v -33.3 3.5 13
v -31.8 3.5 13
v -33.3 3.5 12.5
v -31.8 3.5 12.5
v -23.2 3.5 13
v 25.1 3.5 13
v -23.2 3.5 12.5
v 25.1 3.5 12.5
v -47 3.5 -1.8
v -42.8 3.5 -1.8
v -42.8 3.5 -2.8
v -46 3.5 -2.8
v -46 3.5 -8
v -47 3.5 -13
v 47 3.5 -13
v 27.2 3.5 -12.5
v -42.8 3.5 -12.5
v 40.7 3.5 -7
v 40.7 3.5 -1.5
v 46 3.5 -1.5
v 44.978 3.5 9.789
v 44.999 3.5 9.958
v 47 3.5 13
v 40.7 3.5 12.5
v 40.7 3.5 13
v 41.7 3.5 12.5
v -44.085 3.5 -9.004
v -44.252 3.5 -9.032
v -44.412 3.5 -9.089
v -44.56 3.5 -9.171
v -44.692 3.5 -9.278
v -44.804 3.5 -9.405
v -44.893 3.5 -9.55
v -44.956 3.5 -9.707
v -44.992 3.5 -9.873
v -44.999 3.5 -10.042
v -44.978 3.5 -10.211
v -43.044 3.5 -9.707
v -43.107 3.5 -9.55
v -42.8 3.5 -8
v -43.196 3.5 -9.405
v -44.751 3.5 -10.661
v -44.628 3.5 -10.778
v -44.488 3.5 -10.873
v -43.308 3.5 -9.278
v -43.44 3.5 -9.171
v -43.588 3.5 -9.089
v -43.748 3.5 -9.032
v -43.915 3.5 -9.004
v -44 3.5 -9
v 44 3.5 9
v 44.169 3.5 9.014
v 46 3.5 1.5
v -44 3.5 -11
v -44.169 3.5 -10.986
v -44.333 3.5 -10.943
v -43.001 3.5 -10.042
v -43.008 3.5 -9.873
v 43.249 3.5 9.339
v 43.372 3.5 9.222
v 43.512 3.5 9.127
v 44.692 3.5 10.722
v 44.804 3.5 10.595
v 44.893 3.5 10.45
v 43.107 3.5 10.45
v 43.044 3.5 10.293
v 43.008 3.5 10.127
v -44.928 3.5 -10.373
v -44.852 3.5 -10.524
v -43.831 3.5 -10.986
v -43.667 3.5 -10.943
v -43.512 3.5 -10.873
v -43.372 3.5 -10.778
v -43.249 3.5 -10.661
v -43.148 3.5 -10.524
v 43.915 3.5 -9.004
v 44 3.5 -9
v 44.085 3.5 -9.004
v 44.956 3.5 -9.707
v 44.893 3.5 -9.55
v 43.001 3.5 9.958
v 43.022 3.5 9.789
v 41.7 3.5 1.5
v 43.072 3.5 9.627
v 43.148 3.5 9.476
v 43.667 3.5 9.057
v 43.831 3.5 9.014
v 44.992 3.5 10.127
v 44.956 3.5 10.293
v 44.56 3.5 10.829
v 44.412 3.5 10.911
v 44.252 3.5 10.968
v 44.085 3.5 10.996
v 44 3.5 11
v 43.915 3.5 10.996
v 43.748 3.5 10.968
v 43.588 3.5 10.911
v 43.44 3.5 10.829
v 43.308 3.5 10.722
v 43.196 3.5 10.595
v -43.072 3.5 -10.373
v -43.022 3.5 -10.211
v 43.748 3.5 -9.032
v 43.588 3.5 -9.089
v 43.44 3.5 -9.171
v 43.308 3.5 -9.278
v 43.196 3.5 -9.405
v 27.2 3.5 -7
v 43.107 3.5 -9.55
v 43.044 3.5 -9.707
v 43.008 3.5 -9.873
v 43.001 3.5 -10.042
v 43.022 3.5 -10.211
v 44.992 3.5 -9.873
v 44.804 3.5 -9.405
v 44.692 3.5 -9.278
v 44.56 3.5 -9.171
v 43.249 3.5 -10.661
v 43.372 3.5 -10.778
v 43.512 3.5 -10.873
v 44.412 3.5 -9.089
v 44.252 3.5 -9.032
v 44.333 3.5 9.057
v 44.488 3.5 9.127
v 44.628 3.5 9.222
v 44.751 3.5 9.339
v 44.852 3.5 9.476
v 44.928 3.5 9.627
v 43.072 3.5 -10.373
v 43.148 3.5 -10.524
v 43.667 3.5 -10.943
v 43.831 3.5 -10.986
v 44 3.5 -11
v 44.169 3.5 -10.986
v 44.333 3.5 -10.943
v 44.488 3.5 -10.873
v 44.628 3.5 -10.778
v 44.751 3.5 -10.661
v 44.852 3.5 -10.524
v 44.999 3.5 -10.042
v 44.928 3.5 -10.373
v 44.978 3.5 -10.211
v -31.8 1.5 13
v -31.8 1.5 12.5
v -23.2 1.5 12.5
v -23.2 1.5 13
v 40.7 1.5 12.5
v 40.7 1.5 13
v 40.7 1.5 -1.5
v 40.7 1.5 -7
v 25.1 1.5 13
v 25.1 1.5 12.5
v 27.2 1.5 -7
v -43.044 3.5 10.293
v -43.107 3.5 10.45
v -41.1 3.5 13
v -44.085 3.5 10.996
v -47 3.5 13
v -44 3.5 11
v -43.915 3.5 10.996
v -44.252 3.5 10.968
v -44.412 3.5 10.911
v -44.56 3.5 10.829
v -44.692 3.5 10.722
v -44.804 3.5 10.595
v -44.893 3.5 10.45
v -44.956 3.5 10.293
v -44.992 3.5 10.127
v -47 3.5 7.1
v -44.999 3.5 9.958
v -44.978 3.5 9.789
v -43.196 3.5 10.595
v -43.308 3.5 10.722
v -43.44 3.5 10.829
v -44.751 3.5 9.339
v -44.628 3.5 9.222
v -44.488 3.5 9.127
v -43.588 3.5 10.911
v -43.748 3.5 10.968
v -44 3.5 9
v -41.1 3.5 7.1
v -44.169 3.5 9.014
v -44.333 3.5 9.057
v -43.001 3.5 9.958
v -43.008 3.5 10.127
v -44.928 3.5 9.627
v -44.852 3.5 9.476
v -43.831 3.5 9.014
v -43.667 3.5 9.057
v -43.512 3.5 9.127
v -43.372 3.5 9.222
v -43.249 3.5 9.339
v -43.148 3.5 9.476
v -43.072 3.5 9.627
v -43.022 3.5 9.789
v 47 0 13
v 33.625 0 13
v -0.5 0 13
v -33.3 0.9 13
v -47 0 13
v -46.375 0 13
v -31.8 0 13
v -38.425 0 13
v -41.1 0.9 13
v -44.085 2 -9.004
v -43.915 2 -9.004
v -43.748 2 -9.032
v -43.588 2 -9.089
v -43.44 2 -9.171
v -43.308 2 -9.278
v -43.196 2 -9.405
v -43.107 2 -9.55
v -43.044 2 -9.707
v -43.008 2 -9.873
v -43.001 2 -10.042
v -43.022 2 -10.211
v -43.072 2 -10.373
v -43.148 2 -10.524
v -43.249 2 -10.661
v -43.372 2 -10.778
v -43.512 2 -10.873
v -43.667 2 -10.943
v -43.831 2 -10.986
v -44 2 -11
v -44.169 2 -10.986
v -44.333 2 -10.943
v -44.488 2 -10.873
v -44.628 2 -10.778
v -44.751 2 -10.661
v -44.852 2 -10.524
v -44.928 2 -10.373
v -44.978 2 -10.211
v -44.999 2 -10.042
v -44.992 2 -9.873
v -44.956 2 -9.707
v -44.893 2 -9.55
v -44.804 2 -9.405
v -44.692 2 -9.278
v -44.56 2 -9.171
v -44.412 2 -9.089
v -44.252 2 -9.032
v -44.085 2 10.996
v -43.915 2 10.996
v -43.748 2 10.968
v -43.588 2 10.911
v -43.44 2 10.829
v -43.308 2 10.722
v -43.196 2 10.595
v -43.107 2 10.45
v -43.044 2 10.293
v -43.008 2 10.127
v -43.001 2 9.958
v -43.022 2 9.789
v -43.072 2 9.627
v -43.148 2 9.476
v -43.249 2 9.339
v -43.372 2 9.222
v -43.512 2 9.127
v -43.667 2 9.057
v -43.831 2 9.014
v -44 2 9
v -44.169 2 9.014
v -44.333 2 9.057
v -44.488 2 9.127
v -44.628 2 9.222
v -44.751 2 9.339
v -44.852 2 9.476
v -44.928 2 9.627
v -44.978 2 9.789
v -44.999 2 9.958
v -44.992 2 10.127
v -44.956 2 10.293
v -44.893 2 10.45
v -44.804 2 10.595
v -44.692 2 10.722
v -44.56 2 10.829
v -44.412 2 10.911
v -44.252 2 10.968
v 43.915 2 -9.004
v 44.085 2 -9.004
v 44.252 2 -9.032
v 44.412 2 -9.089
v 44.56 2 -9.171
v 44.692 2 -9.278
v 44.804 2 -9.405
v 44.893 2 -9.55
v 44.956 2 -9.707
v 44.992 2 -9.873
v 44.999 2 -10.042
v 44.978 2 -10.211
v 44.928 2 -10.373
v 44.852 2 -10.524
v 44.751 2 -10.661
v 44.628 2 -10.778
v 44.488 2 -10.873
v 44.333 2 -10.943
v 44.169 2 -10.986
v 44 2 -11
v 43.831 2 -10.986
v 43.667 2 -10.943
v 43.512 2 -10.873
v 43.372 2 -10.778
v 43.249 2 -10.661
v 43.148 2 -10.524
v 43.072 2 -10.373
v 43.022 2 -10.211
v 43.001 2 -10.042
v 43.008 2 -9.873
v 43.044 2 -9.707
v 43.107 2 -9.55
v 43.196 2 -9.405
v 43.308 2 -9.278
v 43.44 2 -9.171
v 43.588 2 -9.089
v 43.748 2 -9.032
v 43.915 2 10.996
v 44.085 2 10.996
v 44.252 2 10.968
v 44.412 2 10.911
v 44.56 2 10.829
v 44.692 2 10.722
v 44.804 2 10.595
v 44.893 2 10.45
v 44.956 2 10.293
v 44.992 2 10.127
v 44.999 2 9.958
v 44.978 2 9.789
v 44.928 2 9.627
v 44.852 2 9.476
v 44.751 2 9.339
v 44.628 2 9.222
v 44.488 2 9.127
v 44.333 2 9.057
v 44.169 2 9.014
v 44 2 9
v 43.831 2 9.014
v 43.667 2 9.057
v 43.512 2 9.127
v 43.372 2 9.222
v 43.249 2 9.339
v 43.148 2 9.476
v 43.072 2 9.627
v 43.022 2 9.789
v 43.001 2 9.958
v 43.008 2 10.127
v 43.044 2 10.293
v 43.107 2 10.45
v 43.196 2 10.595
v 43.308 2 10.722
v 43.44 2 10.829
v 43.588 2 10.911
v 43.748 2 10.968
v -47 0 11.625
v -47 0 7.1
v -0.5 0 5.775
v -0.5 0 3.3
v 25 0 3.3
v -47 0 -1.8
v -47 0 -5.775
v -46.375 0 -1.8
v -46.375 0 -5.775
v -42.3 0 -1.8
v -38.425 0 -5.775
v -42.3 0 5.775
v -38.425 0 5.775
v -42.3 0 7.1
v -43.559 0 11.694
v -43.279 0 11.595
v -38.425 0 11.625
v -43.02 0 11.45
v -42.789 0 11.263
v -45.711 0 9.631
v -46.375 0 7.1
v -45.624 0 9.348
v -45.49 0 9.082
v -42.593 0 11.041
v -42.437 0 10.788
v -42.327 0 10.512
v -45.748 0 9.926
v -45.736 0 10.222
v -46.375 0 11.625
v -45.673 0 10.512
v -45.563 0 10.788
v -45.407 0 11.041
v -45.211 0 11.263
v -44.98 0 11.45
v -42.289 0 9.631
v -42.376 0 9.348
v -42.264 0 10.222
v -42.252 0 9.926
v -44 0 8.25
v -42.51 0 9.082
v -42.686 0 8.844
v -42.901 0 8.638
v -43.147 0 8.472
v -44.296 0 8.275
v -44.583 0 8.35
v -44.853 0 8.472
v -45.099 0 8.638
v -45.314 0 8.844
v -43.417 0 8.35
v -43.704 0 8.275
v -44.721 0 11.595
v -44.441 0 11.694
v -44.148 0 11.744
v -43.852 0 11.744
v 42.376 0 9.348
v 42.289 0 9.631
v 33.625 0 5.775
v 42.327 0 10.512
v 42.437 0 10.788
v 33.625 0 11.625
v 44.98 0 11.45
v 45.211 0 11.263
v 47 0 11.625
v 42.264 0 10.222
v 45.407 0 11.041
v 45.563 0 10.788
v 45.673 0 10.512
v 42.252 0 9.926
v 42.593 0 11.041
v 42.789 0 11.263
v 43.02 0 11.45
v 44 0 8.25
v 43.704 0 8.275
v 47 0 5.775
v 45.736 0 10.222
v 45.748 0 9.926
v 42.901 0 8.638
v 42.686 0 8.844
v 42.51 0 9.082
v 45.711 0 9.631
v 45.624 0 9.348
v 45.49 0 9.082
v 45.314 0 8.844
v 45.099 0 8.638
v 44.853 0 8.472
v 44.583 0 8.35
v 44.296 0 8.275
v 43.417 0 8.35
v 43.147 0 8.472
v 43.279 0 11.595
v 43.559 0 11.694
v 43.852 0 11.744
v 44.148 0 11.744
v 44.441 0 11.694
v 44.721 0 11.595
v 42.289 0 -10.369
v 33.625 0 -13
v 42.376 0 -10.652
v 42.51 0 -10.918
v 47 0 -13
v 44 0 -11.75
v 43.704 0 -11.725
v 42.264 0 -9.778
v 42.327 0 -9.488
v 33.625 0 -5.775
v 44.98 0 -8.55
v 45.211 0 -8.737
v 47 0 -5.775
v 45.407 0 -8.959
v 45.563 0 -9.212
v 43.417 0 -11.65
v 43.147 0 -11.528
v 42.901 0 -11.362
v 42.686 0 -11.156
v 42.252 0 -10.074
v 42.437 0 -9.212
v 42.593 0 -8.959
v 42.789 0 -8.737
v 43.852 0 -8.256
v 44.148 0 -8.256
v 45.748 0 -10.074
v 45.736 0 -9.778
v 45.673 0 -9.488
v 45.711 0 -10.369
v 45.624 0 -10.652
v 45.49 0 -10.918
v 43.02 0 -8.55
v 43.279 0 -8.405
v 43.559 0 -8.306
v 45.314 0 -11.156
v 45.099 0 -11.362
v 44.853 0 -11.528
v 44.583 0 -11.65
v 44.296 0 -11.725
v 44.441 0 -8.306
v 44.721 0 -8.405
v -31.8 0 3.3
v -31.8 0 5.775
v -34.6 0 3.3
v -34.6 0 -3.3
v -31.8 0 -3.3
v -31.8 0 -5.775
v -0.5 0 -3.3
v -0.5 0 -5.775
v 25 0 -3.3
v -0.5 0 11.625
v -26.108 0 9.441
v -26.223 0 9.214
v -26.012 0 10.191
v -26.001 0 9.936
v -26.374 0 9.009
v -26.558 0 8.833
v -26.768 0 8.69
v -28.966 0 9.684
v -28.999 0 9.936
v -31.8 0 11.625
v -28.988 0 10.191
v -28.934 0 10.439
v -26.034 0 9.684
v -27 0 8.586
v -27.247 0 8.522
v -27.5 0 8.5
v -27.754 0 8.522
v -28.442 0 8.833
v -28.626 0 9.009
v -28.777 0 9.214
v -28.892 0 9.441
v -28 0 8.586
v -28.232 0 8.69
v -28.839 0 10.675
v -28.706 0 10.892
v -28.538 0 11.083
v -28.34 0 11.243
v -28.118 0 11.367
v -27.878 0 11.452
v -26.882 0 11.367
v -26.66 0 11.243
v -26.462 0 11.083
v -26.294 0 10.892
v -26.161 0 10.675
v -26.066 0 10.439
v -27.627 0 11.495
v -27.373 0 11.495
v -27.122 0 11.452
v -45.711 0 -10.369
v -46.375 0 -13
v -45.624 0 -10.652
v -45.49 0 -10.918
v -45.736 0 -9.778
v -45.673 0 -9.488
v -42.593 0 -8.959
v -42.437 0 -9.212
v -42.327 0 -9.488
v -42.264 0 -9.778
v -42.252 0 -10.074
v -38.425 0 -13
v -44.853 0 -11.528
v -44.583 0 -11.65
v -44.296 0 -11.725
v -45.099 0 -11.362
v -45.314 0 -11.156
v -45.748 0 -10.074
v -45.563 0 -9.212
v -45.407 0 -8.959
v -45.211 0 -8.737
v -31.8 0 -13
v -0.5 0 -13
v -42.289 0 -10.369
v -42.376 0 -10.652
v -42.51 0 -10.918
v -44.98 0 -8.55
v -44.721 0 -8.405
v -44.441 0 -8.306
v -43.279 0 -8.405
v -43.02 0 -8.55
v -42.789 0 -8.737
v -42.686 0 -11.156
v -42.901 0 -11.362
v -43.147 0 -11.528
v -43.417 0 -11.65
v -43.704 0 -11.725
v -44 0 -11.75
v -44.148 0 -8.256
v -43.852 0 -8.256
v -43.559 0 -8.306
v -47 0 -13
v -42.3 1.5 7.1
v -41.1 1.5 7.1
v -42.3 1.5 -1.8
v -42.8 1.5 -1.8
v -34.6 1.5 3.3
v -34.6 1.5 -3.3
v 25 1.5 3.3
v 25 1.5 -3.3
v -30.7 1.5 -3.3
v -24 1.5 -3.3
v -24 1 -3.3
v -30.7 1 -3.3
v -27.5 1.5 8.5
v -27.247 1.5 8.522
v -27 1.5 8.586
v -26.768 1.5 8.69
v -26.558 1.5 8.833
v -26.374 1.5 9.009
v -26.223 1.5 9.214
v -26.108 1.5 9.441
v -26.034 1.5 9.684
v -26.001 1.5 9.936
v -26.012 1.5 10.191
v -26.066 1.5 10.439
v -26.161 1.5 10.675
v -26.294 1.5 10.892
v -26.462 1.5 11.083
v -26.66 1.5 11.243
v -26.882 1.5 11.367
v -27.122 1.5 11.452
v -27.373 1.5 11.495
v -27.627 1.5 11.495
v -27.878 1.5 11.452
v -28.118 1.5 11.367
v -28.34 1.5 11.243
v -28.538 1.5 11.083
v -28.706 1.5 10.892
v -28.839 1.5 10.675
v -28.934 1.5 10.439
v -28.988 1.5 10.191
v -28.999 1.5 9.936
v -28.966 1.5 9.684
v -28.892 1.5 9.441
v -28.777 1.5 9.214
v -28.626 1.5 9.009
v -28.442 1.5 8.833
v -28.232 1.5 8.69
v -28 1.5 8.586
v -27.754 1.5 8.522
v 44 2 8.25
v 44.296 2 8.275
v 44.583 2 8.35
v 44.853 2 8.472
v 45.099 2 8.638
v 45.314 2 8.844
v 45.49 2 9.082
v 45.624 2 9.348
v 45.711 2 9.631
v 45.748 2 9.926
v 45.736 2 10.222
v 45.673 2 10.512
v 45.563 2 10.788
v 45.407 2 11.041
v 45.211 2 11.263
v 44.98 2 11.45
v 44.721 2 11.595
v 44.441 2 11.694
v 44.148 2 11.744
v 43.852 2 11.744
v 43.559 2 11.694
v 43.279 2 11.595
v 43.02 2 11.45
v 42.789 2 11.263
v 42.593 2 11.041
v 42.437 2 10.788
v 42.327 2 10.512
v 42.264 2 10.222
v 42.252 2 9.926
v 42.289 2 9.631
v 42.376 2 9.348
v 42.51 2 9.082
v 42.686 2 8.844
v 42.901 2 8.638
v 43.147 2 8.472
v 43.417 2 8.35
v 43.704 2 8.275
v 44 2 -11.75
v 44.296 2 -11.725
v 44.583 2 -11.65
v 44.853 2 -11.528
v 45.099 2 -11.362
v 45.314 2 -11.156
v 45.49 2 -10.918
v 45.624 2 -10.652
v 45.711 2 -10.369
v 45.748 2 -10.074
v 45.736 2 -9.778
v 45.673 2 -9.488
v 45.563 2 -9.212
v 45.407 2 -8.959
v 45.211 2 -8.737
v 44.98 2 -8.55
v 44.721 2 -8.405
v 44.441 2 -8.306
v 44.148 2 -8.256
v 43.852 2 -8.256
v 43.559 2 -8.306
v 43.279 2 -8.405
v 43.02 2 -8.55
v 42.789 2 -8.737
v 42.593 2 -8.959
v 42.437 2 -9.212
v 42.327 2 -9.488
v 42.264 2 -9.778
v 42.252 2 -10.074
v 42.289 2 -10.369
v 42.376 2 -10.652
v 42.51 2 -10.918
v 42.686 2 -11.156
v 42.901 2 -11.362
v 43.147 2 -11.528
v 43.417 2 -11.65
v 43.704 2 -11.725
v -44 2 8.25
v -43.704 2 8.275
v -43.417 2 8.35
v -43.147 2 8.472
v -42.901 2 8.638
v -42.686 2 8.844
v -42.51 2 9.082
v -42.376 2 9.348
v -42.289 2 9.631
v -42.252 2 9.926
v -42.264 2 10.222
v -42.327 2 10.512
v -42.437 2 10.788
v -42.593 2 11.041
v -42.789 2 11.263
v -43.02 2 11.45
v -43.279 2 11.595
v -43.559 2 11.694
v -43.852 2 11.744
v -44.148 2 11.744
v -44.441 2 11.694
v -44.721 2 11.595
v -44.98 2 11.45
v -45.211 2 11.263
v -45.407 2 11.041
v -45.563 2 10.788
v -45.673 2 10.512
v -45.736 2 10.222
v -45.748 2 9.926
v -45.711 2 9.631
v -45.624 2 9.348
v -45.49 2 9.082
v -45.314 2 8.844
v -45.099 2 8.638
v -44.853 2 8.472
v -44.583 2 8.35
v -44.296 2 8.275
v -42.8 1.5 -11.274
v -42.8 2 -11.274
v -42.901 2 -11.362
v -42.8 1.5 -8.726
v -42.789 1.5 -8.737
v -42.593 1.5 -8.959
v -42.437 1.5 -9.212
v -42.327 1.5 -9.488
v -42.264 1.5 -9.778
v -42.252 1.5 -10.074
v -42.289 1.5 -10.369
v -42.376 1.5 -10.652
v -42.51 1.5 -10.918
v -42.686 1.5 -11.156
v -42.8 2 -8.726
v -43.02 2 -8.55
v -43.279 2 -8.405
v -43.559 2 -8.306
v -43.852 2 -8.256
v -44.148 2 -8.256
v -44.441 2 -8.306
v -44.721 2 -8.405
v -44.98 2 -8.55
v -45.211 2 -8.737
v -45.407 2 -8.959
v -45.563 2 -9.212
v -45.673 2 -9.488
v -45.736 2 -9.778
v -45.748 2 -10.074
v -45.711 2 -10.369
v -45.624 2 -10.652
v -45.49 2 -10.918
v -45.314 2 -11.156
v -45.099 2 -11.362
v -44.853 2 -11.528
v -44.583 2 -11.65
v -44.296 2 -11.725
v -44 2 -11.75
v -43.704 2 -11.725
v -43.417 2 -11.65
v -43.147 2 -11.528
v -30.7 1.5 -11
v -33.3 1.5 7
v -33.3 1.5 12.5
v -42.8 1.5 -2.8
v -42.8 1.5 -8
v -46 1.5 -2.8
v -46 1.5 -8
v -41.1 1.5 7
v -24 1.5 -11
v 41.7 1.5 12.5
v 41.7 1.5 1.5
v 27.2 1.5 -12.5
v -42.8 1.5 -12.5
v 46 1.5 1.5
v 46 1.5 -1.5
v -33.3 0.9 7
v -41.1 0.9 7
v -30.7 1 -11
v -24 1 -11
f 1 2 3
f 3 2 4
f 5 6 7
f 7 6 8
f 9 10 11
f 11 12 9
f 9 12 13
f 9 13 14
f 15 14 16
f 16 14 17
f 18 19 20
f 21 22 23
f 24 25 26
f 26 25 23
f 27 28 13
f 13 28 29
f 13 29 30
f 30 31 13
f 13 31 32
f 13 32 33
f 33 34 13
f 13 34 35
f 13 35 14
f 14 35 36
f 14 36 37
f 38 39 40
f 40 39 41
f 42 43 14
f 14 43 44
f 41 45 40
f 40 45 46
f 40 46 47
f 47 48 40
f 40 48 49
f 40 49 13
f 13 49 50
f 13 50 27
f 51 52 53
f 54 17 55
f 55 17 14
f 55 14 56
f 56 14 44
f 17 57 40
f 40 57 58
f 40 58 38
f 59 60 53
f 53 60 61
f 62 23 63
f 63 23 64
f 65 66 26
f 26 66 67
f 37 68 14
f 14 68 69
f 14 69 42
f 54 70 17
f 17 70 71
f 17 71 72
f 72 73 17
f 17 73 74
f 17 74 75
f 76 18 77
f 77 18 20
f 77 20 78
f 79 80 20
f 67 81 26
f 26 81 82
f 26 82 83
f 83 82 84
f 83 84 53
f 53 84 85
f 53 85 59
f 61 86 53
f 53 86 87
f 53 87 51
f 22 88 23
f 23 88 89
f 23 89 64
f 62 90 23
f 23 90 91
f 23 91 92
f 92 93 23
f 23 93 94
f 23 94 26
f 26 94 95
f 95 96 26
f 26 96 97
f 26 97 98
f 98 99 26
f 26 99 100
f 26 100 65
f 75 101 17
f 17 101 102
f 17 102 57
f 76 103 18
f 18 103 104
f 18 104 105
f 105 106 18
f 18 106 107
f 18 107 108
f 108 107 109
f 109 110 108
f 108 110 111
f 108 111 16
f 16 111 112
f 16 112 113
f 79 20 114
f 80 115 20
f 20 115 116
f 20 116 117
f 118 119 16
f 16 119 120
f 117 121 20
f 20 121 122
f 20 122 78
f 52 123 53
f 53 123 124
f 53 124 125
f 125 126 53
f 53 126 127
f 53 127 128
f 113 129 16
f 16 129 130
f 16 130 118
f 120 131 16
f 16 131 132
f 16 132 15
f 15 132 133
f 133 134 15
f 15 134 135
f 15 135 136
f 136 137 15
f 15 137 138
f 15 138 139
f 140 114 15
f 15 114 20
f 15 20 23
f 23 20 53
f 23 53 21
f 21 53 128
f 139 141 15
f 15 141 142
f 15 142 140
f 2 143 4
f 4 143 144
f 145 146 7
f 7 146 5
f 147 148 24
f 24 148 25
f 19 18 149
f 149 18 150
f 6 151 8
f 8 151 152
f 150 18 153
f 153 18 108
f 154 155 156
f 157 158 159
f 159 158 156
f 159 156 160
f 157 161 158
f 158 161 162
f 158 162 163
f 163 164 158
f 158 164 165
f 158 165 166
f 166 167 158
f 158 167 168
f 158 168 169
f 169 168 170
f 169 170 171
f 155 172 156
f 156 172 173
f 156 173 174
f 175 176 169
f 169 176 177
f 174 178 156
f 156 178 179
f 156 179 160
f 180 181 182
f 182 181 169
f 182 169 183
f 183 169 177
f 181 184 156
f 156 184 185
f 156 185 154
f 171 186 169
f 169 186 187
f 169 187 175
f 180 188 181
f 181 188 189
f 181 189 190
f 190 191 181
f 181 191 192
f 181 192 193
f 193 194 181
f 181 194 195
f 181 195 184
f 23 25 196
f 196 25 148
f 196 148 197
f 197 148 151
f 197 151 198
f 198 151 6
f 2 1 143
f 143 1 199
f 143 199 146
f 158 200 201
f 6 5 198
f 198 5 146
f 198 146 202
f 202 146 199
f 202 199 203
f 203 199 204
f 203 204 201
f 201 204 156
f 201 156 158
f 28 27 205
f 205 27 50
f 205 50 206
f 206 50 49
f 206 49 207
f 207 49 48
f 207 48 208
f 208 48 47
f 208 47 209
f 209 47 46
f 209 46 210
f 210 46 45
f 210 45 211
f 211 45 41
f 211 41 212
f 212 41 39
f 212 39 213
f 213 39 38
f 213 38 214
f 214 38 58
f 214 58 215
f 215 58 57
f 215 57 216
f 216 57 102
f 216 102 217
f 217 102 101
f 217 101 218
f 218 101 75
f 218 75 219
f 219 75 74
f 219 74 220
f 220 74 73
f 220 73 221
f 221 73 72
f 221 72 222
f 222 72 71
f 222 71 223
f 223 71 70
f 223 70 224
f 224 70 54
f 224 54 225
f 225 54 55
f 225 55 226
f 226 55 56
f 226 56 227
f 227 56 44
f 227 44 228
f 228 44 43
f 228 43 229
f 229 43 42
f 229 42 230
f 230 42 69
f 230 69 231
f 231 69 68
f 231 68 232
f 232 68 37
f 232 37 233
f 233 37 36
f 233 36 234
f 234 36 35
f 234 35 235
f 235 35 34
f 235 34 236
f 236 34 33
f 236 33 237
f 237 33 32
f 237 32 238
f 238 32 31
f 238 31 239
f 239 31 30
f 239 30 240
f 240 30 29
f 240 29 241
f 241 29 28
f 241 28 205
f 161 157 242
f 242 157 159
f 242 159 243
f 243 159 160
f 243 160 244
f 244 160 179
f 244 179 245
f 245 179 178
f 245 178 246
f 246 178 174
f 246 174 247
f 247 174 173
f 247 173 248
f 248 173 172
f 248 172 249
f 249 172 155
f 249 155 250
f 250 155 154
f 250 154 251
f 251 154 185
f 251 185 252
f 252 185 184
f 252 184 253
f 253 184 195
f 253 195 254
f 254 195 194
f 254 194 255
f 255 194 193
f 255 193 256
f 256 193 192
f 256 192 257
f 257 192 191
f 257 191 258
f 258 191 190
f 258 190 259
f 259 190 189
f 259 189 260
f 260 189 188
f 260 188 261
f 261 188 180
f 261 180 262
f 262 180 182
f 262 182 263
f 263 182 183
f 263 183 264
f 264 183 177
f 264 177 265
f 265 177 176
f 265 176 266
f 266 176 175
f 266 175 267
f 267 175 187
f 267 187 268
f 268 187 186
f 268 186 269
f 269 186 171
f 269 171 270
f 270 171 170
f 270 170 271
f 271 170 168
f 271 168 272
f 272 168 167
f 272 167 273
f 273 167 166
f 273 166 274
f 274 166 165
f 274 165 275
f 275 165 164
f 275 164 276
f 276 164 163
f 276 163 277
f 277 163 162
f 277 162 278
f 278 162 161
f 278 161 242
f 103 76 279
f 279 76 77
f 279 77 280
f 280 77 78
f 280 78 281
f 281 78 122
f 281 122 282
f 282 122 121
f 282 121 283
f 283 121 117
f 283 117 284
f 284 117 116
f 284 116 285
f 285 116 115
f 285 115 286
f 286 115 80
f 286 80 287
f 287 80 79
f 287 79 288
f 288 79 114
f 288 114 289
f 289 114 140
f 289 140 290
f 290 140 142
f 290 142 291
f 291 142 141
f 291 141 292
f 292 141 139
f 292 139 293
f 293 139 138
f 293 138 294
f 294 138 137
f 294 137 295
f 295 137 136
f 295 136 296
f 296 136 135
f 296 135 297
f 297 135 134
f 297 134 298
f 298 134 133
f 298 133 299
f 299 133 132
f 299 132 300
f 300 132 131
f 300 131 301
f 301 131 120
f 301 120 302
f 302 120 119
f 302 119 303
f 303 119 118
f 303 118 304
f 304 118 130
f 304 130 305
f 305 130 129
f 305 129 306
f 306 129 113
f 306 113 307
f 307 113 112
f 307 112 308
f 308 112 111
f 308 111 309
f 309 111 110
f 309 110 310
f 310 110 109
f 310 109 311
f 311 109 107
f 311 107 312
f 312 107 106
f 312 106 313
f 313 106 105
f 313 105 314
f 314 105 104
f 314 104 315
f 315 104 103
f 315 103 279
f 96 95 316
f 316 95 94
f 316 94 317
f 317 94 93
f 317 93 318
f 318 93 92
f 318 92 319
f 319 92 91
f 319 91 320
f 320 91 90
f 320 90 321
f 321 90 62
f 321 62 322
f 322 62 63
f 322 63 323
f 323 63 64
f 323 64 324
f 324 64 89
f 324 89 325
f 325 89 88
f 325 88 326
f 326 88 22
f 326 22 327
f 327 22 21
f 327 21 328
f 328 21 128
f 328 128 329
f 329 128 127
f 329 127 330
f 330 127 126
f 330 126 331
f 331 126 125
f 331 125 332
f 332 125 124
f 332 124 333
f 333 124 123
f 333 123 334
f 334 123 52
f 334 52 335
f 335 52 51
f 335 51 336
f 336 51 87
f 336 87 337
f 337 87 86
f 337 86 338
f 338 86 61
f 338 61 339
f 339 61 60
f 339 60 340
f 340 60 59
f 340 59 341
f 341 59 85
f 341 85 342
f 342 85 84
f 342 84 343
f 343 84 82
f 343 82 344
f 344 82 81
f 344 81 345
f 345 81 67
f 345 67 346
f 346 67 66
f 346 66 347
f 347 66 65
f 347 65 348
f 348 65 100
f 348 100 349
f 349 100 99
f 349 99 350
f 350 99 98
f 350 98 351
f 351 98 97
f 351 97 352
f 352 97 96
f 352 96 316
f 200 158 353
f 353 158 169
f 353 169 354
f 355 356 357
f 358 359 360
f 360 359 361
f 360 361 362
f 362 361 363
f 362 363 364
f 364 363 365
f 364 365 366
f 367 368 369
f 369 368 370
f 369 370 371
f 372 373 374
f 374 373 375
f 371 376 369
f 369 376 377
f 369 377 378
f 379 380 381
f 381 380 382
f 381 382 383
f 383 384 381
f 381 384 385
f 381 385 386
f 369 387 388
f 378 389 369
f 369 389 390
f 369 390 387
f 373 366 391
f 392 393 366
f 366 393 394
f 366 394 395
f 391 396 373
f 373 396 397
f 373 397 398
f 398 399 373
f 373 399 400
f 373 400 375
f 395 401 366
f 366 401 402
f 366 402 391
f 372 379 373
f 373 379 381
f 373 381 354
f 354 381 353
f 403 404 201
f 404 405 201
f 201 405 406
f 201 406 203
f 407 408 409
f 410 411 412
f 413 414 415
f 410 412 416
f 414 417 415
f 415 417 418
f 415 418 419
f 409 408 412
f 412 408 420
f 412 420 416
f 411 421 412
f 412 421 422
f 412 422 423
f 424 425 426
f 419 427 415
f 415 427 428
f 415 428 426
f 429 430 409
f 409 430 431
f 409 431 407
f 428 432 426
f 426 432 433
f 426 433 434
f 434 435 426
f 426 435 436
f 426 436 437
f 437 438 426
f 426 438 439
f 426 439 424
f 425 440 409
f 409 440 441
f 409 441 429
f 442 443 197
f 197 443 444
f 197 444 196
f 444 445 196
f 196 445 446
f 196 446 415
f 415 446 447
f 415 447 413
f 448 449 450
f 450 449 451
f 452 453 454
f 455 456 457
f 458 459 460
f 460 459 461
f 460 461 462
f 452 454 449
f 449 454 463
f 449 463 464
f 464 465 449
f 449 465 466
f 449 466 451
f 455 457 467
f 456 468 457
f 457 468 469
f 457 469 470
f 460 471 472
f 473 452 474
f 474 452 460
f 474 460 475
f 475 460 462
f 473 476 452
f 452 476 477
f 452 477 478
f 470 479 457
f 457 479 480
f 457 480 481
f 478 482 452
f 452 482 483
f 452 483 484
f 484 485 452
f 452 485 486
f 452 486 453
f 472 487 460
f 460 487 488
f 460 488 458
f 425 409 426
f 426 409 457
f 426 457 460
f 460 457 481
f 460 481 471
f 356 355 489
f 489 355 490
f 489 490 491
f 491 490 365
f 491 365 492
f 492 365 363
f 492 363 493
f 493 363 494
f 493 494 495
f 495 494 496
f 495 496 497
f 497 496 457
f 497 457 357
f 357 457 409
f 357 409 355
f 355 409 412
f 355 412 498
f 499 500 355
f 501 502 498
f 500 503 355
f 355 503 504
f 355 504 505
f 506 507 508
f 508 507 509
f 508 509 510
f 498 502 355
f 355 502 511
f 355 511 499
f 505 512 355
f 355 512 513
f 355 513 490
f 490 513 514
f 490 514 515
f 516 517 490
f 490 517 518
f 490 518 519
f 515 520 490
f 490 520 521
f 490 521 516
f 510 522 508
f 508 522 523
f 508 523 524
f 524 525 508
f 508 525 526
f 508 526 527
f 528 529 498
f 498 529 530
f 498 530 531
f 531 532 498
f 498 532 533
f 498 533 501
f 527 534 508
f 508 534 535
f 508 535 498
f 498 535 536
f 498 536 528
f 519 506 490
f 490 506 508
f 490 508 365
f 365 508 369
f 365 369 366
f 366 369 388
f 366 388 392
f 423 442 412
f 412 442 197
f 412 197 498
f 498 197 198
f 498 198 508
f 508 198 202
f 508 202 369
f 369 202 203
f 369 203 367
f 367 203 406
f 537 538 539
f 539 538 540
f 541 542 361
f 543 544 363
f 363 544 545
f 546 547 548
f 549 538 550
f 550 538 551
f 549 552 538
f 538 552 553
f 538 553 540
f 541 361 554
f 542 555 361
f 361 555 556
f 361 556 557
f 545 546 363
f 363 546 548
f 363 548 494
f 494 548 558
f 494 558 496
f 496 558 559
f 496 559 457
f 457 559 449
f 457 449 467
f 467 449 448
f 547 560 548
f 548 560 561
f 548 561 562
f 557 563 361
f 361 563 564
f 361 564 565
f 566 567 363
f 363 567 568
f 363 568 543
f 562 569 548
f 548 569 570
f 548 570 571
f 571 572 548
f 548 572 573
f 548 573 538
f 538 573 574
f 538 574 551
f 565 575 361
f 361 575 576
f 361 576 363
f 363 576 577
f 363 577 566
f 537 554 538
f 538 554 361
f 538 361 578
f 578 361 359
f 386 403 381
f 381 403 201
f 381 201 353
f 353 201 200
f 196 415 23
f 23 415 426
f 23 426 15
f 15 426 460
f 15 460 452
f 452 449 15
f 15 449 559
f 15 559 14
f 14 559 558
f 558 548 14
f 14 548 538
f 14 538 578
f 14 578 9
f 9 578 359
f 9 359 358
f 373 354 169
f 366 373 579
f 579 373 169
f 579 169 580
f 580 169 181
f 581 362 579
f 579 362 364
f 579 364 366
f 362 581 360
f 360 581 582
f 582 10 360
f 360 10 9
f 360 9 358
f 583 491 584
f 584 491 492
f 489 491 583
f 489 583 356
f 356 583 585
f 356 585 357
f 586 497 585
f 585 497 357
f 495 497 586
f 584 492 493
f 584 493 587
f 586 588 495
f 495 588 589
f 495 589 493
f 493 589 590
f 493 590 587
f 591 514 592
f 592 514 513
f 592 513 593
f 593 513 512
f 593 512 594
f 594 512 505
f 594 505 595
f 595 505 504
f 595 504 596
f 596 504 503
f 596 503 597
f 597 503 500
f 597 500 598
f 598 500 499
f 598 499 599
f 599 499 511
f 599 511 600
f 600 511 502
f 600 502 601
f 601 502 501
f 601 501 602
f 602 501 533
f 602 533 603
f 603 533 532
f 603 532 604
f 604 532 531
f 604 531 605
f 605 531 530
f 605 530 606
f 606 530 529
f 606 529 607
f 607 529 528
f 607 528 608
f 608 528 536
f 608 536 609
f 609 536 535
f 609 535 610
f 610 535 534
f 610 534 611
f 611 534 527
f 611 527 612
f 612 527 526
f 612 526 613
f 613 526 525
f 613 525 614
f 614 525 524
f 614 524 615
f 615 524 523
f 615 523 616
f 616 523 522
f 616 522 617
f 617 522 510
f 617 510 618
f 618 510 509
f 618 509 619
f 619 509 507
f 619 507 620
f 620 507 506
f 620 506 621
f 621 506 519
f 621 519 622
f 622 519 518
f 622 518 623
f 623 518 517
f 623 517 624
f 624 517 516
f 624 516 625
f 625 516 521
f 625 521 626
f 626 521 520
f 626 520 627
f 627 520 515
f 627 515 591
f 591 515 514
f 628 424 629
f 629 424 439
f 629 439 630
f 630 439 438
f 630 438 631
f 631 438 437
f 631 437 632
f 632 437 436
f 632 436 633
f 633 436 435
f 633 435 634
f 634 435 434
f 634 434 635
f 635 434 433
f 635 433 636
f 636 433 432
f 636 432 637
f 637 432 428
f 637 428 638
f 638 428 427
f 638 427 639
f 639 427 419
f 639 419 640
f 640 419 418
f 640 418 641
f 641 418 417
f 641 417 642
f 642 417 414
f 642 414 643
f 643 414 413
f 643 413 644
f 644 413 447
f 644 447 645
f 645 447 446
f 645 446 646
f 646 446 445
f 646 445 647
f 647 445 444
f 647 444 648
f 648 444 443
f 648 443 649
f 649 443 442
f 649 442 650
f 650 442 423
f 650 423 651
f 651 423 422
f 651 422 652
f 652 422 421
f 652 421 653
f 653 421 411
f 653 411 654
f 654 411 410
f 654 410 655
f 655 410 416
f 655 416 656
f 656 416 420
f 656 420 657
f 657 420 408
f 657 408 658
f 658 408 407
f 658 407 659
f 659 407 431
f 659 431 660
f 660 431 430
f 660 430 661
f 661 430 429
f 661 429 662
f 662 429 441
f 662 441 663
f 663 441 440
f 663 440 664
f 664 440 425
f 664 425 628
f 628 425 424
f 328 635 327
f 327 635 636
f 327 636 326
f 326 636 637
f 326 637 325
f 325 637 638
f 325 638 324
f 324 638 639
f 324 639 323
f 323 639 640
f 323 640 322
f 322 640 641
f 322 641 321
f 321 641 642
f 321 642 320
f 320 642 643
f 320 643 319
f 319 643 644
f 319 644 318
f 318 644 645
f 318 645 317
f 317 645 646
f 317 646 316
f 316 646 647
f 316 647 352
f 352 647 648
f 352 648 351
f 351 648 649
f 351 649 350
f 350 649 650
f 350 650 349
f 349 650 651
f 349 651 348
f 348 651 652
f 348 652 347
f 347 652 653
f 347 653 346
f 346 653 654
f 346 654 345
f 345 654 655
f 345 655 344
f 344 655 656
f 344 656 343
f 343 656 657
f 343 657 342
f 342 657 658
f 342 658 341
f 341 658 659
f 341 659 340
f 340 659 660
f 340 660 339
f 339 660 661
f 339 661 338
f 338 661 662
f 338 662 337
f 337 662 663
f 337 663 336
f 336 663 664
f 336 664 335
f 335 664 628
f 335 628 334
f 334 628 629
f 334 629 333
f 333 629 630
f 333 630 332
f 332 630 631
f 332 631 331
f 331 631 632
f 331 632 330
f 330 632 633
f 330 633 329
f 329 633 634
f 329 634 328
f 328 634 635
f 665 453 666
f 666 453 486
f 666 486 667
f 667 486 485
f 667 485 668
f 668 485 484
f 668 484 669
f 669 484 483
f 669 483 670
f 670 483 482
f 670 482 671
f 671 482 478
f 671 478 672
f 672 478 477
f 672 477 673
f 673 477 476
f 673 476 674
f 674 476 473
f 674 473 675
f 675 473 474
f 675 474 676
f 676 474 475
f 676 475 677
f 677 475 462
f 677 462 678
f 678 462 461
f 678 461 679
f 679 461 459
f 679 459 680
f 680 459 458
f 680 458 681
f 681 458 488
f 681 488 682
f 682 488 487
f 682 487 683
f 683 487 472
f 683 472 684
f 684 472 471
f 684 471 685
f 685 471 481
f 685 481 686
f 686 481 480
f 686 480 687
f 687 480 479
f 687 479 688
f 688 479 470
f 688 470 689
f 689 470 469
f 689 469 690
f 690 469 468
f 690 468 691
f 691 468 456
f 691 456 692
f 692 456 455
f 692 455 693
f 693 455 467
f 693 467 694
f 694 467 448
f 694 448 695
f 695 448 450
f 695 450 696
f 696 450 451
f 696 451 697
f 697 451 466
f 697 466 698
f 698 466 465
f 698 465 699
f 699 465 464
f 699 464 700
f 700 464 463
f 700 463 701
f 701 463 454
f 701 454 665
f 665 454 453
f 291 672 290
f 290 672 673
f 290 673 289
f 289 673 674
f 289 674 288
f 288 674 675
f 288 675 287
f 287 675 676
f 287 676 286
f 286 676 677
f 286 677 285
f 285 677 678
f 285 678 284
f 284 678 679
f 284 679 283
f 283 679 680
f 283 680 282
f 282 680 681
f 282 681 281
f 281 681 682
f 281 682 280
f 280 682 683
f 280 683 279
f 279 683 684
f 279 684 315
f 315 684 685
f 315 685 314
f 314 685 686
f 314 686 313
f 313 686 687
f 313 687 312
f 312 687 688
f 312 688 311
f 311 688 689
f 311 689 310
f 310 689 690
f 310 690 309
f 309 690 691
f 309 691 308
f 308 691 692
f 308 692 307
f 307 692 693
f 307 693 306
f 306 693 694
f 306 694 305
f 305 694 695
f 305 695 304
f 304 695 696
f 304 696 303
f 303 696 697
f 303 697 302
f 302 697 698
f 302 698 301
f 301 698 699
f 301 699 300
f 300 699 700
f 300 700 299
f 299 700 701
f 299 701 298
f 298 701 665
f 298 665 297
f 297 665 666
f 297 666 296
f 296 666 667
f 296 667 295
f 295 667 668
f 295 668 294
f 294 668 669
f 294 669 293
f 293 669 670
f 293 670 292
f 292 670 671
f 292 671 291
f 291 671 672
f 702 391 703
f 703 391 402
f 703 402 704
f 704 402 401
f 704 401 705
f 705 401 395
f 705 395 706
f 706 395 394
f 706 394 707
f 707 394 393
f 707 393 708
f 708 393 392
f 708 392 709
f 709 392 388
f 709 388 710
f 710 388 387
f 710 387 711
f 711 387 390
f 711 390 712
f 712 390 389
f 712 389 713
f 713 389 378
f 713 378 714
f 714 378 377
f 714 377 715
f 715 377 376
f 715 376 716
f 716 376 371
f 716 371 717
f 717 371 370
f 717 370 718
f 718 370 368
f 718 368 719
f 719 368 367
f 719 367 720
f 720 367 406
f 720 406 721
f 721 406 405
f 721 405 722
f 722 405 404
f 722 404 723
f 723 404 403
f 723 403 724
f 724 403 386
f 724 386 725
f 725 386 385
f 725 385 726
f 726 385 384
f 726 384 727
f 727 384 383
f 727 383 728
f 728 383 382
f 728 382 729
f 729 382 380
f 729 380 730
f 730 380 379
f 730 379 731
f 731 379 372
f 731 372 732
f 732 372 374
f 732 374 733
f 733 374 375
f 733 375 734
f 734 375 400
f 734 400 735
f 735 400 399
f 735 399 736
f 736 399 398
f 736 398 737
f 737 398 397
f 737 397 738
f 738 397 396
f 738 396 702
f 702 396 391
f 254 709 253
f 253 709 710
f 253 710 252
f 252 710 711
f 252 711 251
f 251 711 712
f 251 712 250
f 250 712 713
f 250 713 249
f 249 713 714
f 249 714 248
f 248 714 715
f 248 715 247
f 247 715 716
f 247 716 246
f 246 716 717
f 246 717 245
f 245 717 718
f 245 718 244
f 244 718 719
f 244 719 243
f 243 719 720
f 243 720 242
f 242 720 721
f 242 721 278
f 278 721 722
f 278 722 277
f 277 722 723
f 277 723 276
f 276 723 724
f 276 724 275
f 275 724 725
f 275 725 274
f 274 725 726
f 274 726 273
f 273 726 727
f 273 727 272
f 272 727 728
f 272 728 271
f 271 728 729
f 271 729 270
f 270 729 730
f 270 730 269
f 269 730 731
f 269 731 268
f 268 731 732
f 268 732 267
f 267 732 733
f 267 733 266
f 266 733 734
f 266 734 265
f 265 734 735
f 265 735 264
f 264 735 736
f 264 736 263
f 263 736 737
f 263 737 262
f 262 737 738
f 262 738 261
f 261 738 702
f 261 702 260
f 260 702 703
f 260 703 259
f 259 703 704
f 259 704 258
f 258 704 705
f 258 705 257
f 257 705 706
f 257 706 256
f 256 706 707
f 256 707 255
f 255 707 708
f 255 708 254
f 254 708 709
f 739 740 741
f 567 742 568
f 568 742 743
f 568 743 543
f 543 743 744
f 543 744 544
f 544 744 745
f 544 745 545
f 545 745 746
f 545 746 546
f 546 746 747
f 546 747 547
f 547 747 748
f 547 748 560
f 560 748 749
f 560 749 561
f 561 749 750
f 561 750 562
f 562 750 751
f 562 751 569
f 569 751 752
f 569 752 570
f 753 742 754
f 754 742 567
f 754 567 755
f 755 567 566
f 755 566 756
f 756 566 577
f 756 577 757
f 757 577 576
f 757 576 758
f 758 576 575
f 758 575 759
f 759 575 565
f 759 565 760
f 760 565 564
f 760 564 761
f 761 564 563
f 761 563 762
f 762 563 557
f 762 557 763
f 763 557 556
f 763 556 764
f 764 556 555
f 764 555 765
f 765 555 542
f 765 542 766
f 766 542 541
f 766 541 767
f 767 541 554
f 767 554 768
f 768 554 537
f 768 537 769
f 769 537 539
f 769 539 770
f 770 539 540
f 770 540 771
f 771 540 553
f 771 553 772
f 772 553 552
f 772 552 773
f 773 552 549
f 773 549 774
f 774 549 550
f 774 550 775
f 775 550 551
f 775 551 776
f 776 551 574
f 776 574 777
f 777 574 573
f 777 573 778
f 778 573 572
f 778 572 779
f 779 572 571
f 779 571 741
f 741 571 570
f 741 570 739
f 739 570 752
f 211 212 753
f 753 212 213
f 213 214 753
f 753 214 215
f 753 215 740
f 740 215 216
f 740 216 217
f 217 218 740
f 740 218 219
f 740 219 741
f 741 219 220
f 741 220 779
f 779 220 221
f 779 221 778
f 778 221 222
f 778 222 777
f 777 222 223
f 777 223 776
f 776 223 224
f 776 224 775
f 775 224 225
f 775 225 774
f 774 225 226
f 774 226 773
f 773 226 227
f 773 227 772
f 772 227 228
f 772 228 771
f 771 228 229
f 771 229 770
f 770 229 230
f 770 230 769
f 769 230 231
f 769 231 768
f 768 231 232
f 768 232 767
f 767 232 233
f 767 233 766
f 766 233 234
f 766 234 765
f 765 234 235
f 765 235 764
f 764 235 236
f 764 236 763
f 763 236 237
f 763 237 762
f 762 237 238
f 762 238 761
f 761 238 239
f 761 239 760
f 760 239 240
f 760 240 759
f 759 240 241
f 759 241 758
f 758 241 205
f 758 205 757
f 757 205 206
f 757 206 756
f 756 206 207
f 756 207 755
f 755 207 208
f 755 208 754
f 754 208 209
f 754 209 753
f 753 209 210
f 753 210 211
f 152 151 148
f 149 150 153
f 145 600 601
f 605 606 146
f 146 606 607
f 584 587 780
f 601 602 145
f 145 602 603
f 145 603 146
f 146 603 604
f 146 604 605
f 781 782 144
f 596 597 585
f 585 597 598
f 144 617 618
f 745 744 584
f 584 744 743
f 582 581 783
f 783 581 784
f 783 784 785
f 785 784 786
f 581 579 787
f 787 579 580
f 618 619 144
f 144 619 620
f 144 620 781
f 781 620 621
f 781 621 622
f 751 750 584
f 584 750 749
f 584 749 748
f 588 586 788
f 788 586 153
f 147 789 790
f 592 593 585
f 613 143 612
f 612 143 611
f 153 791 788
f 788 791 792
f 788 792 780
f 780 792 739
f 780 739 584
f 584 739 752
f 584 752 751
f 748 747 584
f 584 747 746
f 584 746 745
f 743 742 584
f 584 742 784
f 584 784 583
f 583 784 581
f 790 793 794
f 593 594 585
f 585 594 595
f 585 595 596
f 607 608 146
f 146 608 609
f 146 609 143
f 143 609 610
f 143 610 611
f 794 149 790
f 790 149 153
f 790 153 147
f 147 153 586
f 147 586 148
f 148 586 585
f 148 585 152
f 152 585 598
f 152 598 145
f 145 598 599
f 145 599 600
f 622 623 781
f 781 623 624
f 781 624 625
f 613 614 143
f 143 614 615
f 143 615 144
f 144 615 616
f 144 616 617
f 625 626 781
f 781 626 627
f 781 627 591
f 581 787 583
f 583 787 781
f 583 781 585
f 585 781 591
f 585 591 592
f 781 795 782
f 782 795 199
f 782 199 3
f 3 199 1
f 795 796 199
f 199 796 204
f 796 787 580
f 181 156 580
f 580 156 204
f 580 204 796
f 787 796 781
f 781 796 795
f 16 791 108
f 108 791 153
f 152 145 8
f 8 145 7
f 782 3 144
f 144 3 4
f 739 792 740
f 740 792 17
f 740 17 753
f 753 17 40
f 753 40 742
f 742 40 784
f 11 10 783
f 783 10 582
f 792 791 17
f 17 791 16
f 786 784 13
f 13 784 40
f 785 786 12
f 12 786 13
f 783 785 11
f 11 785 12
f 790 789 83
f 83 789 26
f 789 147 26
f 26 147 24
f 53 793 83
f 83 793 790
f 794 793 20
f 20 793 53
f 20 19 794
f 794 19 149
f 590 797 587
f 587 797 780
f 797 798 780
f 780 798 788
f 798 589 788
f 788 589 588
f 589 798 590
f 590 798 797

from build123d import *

# Parameters (mm, degrees)
SKETCH_1_W           = 94
SKETCH_1_H           = 26
SKETCH_1_R           = 1
EXTRUDE_1_DEPTH      = 3.5
SKETCH_2_W           = 4.7
SKETCH_2_H           = 8.9
SKETCH_2_W_2         = 59.6
SKETCH_2_H_2         = 6.6
CUT_EXTRUDE_1_DEPTH  = 49.890183064
SKETCH_3_R           = 1.5
CUT_EXTRUDE_2_DEPTH  = 49.890183064
SKETCH_4_R           = 1.75
CUT_EXTRUDE_3_DEPTH  = 2
SKETCH_5_W           = 7.8
SKETCH_5_H           = 2.6
SKETCH_5_W_2         = 8.6
SKETCH_5_H_2         = 2
CUT_EXTRUDE_4_DEPTH  = 6
SKETCH_5_3_W         = 15.6
SKETCH_5_3_H         = 2
CUT_EXTRUDE_5_DEPTH  = 20
SKETCH_6_W           = 70
SKETCH_6_H           = 19.6
SKETCH_6_W_2         = 18.8
SKETCH_6_H_2         = 3
SKETCH_6_W_3         = 82.8
SKETCH_6_H_3         = 11
SKETCH_6_W_4         = 3.2
SKETCH_6_H_4         = 5.2
CUT_EXTRUDE_12_DEPTH = 2
SKETCH_7_W           = 6.7
SKETCH_7_H           = 7.7
CUT_EXTRUDE_13_DEPTH = 0.5


with BuildPart() as part:
    # 草图1 → 凸台-拉伸1 (new body)
    with BuildSketch(Plane(origin=(0, 0, 0), x_dir=(1, 0, 0), z_dir=(0, 1, 0))):
        Rectangle(SKETCH_1_W, SKETCH_1_H)
        with Locations(Location((-44, 10, 0), (0, 0, 270))):
            Circle(SKETCH_1_R, mode=Mode.SUBTRACT)
        with Locations(Location((-44, -10, 0), (0, 0, 270))):
            Circle(SKETCH_1_R, mode=Mode.SUBTRACT)
        with Locations(Location((44, 10, 0), (0, 0, 270))):
            Circle(SKETCH_1_R, mode=Mode.SUBTRACT)
        with Locations(Location((44, -10, 0), (0, 0, 270))):
            Circle(SKETCH_1_R, mode=Mode.SUBTRACT)
    extrude(amount=EXTRUDE_1_DEPTH)

    # 草图2 → 切除-拉伸1 (cut, through all)
    with BuildSketch(Plane.XZ):
        with Locations((-44.65, 2.65)):
            Rectangle(SKETCH_2_W, SKETCH_2_H)
        with Locations((-4.8, 0)):
            Rectangle(SKETCH_2_W_2, SKETCH_2_H_2)
    extrude(amount=-CUT_EXTRUDE_1_DEPTH, mode=Mode.SUBTRACT)

    # 草图3 → 切除-拉伸2 (cut, through all)
    with BuildSketch(Plane(origin=(0, 0, 0), x_dir=(-1, 0, 0), z_dir=(0, -1, 0))):
        with Locations(Location((27.5, -10, 0), (0, 0, 90))):
            Circle(SKETCH_3_R)
    extrude(amount=-CUT_EXTRUDE_2_DEPTH, mode=Mode.SUBTRACT)

    # 草图4 → 切除-拉伸3 (cut)
    with BuildSketch(Plane.XZ):
        with Locations(Location((-44, 10, 0), (0, 0, 270))):
            Circle(SKETCH_4_R)
        with Locations(Location((-44, -10, 0), (0, 0, 270))):
            Circle(SKETCH_4_R)
        with Locations(Location((44, 10, 0), (0, 0, 270))):
            Circle(SKETCH_4_R)
        with Locations(Location((44, -10, 0), (0, 0, 270))):
            Circle(SKETCH_4_R)
    extrude(amount=-CUT_EXTRUDE_3_DEPTH, mode=Mode.SUBTRACT)

    # 草图5 → 切除-拉伸4 (cut)
    with BuildSketch(Plane.XY.offset(13)):
        with Locations((-37.2, 2.2)):
            Rectangle(SKETCH_5_W, SKETCH_5_H)
        with Locations((-27.5, 2.5)):
            Rectangle(SKETCH_5_W_2, SKETCH_5_H_2)
    extrude(amount=-CUT_EXTRUDE_4_DEPTH, mode=Mode.SUBTRACT)

    # 草图5<3> → 切除-拉伸5 (cut)
    with BuildSketch(Plane.XY.offset(13)):
        with Locations((32.9, 2.5)):
            Rectangle(SKETCH_5_3_W, SKETCH_5_3_H)
    extrude(amount=-CUT_EXTRUDE_5_DEPTH, mode=Mode.SUBTRACT)

    # 草图6 → 切除-拉伸12 (cut)
    with BuildSketch(Plane(origin=(0, 3.5, 0), x_dir=(1, 0, 0), z_dir=(0, 1, 0))):
        with Locations((-7.8, 2.7)):
            Rectangle(SKETCH_6_W, SKETCH_6_H)
        with Locations((36.6, 0)):
            Rectangle(SKETCH_6_W_2, SKETCH_6_H_2)
        with Locations((0.3, -7)):
            Rectangle(SKETCH_6_W_3, SKETCH_6_H_3)
        with Locations((-44.4, 5.4)):
            Rectangle(SKETCH_6_W_4, SKETCH_6_H_4)
    extrude(amount=-CUT_EXTRUDE_12_DEPTH, mode=Mode.SUBTRACT)

    # 草图7 → 切除-拉伸13 (cut)
    with BuildSketch(Plane(origin=(0, 1.5, 0), x_dir=(1, 0, 0), z_dir=(0, 1, 0))):
        with Locations((-27.35, 7.15)):
            Rectangle(SKETCH_7_W, SKETCH_7_H)
    extrude(amount=-CUT_EXTRUDE_13_DEPTH, mode=Mode.SUBTRACT)


solid = part.part
